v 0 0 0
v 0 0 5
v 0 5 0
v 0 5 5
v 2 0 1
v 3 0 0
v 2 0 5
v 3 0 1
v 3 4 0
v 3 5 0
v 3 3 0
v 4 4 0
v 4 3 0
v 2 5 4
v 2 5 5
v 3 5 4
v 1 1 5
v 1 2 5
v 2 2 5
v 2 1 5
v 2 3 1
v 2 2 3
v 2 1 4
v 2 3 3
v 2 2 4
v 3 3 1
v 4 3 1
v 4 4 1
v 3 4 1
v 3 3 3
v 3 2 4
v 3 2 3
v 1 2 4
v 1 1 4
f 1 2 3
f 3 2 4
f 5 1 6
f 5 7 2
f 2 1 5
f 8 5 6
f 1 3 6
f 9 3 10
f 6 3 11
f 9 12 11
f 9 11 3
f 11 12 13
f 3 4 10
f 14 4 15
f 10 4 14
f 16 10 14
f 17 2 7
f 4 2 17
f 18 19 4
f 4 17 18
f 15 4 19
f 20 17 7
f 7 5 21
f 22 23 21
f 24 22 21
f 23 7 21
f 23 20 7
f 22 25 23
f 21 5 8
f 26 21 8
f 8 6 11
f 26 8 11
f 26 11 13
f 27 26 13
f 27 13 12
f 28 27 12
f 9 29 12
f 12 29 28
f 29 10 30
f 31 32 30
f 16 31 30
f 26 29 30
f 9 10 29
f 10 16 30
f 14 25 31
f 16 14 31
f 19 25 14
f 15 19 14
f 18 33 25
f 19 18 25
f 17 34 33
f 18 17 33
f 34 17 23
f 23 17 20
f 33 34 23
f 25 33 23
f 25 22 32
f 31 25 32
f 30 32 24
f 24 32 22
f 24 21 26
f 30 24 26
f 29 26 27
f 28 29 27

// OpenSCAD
// Create matrix
mr = 	[
		[3,3,3,0,0,3,3,3,0,0,3,3,3,0,0,3,3,3,1,0,3,3,1,0,0],
		[3,3,0,0,0,3,3,0,0,0,3,3,0,0,0,3,3,3,0,0,3,1,1,0,0],
		[3,3,0,0,0,3,3,0,0,0,3,1,0,0,0,3,3,2,0,0,1,1,1,0,0],
		[3,3,0,0,0,3,2,0,0,0,2,2,2,0,0,2,2,2,0,0,1,2,2,0,0],
		[3,3,0,0,0,3,0,0,0,0,2,2,0,0,0,2,2,0,0,0,1,2,0,0,0]
		];
// Draw cubes
// Z-axis
for (a =[0:4]){
	// Y=axis
	for (b =[0:4]){
		// X-axis
		for (c =[0:4]){
			// Draw cube
			if(	mr[a][(b*5)+c] == 1){				
				color([1,0,0]) translate([c, b, a ])cube([1,1,1]);
			} 
			if(	mr[a][(b*5)+c] == 2){
				color([0,0,1]) translate([c, b, a ])cube([1,1,1]);
			} 
			if(	mr[a][(b*5)+c]== 3){
				color([0,1,0]) translate([c, b, a ])cube([1,1,1]);
			}  
		}
	}
}
/*
// Create matrix
mr = 	[
		[1, 1, 0],
		[0, 1, 0],
		[0, 1, 1]
		];
echo(mr);
// Draw cubes
for (a =[0:2]){
	for (b =[0:2]){
		echo(mr[a][b]);
		if(	mr[a][b]==1){
			// Move and draw cube
			translate([a, b, 0 ])cube([1,1,1]);
			echo("bang");
		}  
	}
}
*/
